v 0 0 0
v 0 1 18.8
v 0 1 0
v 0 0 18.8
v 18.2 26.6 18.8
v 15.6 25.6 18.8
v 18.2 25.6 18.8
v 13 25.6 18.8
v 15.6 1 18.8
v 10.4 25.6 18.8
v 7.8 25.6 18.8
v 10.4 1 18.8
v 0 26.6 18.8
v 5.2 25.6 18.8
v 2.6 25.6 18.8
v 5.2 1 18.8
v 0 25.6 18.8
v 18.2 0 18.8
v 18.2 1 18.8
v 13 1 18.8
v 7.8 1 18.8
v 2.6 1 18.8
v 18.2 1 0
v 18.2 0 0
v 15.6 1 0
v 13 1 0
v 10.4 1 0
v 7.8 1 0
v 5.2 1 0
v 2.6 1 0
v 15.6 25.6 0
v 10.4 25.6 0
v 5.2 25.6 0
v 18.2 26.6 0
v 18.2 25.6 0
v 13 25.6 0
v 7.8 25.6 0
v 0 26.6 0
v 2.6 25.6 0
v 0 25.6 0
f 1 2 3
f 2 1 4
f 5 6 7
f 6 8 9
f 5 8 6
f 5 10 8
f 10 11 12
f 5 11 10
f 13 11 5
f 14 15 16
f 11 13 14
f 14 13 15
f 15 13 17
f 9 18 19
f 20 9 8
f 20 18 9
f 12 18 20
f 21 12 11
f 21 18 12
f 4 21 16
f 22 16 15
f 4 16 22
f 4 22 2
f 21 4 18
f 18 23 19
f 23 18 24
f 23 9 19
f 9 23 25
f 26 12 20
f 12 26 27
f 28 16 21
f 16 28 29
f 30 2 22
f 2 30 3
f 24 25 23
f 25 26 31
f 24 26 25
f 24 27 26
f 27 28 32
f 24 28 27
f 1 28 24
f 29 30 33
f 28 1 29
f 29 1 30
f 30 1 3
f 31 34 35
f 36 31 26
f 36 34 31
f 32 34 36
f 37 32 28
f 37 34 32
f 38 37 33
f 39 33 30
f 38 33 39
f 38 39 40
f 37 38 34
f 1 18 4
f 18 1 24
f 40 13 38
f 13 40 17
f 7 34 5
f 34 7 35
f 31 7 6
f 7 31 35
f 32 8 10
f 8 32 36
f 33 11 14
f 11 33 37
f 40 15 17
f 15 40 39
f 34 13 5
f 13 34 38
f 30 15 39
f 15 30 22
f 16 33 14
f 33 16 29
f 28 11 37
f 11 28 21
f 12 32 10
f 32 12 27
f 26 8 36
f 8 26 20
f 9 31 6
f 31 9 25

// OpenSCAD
// file: ../../container.scad
function defaultBottomThickness() = 1;
function defaultBottomClearance() = 16;
function defaultMinWallThickness() = 1;
function defaultWallClearance() = 16;
function defaultSideMultiple() = 2;

function getOuterWidth(innerWidth, minWallThickness, sideMultiple) = ceil((innerWidth + 2*minWallThickness)/sideMultiple)*sideMultiple;
function getOuterDepth(innerDepth, minWallThickness, sideMultiple) = ceil((innerDepth + 2*minWallThickness)/sideMultiple)*sideMultiple;

function getSideWallThickness(innerWidth, minWallThickness, sideMultiple) = (getOuterWidth(innerWidth, minWallThickness, sideMultiple) - innerWidth)/2;
function getFrontWallThickness(innerDepth, minWallThickness, sideMultiple) = (getOuterDepth(innerDepth, minWallThickness, sideMultiple) - innerDepth)/2;

function getFrontHoleWidth(innerWidth, frontWallClearance) = max(5, innerWidth - 2*frontWallClearance);
function getSideHoleDepth(innerDepth, sideWallClearance) = max(5, innerDepth - 2*sideWallClearance);

function getFrontHole(innerWidth, innerDepth, outerHeight, bottomClearance, minWallThickness, frontWallClearance, sideMultiple) = [
  [
    getSideWallThickness(innerWidth, minWallThickness, sideMultiple) + (innerWidth/2 - getFrontHoleWidth(innerWidth, frontWallClearance)/2),
    0,
    bottomClearance
  ],
  [
    getFrontHoleWidth(innerWidth, frontWallClearance),
    getOuterDepth(innerDepth, minWallThickness, sideMultiple),
    outerHeight
  ]
];

function getSideHole(innerWidth, innerDepth, outerHeight, bottomClearance, minWallThickness, sideWallClearance, sideMultiple) = [
  [
    0,
    getFrontWallThickness(innerDepth, minWallThickness, sideMultiple) + (innerDepth/2 - getSideHoleDepth(innerDepth, sideWallClearance)/2),
    bottomClearance
  ],
  [
    getOuterWidth(innerWidth, minWallThickness, sideMultiple),
    getSideHoleDepth(innerDepth, sideWallClearance),
    outerHeight
  ]
];

module container (
  innerWidth,
  innerDepth,
  outerHeight,
  type = "solid",
  bottomThickness = defaultBottomThickness(),
  bottomClearance = defaultBottomClearance(),
  minWallThickness = defaultMinWallThickness(),
  frontWallClearance = defaultWallClearance(),
  sideWallClearance = defaultWallClearance(),
  sideMultiple = defaultSideMultiple()
) {
  innerHeight = outerHeight - bottomThickness;

  outerWidth = getOuterWidth(innerWidth, minWallThickness, sideMultiple);
  outerDepth = getOuterDepth(innerDepth, minWallThickness, sideMultiple);
  sideWallThickness = getSideWallThickness(innerWidth, minWallThickness, sideMultiple);
  frontWallThickness = getFrontWallThickness(innerDepth, minWallThickness, sideMultiple);

  echo("File dimensions", innerWidth, innerDepth, outerHeight);
  echo("Outer dimensions", outerWidth, outerDepth, outerHeight);
  echo("Walls", sideWallThickness, frontWallThickness);

  baseHoleWidth = max(5, innerWidth - 2*bottomClearance);
  holeWidth = baseHoleWidth > innerWidth ? innerWidth/2 : baseHoleWidth;
  baseHoleDepth = max(5, innerDepth - 2*bottomClearance);
  holeDepth = baseHoleDepth > innerDepth ? innerDepth/2 : baseHoleDepth;
  holeX = sideWallThickness + innerWidth/2 - holeWidth/2;
  holeY = frontWallThickness + innerDepth/2 - holeDepth/2;

  frontHole = getFrontHole(
    innerWidth,
    innerDepth,
    outerHeight,
    bottomClearance,
    minWallThickness,
    frontWallClearance,
    sideMultiple
  );
  frontHolePosition = frontHole[0];
  frontHoleDimesions = frontHole[1];

  sideHole = getSideHole(
    innerWidth,
    innerDepth,
    outerHeight,
    bottomClearance,
    minWallThickness,
    sideWallClearance,
    sideMultiple
  );
  sideHolePosition = sideHole[0];
  sideHoleDimensions = sideHole[1];

  difference() {
    // Outer box
    cube([outerWidth, outerDepth, outerHeight]);

    // Inner box
    translate([sideWallThickness, frontWallThickness, bottomThickness])
    cube([innerWidth, innerDepth, innerHeight]);

    // Bottom hole
    translate([holeX, holeY, 0])
    cube([holeWidth, holeDepth, bottomThickness]);

    if(type == "hollow") {
      // Front and back hole
      translate(frontHolePosition)
      cube(frontHoleDimesions);

      // Side holes
      translate(sideHolePosition)
      cube(sideHoleDimensions);
    }
  }
}
// main file
use <../../container.scad>;

/*
  braces: the two outer pieces
  dividers: the three inner pieces
*/

// tolerances
heightTolerance = .2;
widthTolerance = .5;
depthTolerance = widthTolerance;

// base container dimensions
containerBottomThickness = defaultBottomThickness();
containerHeight = 20;

// base insert dimensions
innerHoleWidth = 2.6;
dividerWidth = innerHoleWidth;
dividerDepth = 24.6;
braceDepth = 1;

// computed container dimensions
containerWidth = 4*innerHoleWidth + 3*dividerWidth + widthTolerance;
containerDepth = 2*braceDepth + dividerDepth + depthTolerance;

echo("Container", containerWidth, containerDepth, containerHeight);

// computed insert dimensions
braceWidth = containerWidth - widthTolerance;
insertHeight = containerHeight - containerBottomThickness - heightTolerance;
outerHoleWidth = (braceWidth - (3*dividerWidth + 2*innerHoleWidth))/2;

brace = [braceWidth, braceDepth, insertHeight];
divider = [dividerWidth, dividerDepth, insertHeight];

// top brace
cube(brace);

// bottom brace
translate([0, braceDepth + dividerDepth, 0])
cube(brace);

// divider 1
translate([outerHoleWidth, braceDepth, 0])
cube(divider);

// divider 2
translate([outerHoleWidth + dividerWidth + innerHoleWidth, braceDepth, 0])
cube(divider);

// divider 3
translate([outerHoleWidth + 2*dividerWidth + 2*innerHoleWidth, braceDepth, 0])
cube(divider);
